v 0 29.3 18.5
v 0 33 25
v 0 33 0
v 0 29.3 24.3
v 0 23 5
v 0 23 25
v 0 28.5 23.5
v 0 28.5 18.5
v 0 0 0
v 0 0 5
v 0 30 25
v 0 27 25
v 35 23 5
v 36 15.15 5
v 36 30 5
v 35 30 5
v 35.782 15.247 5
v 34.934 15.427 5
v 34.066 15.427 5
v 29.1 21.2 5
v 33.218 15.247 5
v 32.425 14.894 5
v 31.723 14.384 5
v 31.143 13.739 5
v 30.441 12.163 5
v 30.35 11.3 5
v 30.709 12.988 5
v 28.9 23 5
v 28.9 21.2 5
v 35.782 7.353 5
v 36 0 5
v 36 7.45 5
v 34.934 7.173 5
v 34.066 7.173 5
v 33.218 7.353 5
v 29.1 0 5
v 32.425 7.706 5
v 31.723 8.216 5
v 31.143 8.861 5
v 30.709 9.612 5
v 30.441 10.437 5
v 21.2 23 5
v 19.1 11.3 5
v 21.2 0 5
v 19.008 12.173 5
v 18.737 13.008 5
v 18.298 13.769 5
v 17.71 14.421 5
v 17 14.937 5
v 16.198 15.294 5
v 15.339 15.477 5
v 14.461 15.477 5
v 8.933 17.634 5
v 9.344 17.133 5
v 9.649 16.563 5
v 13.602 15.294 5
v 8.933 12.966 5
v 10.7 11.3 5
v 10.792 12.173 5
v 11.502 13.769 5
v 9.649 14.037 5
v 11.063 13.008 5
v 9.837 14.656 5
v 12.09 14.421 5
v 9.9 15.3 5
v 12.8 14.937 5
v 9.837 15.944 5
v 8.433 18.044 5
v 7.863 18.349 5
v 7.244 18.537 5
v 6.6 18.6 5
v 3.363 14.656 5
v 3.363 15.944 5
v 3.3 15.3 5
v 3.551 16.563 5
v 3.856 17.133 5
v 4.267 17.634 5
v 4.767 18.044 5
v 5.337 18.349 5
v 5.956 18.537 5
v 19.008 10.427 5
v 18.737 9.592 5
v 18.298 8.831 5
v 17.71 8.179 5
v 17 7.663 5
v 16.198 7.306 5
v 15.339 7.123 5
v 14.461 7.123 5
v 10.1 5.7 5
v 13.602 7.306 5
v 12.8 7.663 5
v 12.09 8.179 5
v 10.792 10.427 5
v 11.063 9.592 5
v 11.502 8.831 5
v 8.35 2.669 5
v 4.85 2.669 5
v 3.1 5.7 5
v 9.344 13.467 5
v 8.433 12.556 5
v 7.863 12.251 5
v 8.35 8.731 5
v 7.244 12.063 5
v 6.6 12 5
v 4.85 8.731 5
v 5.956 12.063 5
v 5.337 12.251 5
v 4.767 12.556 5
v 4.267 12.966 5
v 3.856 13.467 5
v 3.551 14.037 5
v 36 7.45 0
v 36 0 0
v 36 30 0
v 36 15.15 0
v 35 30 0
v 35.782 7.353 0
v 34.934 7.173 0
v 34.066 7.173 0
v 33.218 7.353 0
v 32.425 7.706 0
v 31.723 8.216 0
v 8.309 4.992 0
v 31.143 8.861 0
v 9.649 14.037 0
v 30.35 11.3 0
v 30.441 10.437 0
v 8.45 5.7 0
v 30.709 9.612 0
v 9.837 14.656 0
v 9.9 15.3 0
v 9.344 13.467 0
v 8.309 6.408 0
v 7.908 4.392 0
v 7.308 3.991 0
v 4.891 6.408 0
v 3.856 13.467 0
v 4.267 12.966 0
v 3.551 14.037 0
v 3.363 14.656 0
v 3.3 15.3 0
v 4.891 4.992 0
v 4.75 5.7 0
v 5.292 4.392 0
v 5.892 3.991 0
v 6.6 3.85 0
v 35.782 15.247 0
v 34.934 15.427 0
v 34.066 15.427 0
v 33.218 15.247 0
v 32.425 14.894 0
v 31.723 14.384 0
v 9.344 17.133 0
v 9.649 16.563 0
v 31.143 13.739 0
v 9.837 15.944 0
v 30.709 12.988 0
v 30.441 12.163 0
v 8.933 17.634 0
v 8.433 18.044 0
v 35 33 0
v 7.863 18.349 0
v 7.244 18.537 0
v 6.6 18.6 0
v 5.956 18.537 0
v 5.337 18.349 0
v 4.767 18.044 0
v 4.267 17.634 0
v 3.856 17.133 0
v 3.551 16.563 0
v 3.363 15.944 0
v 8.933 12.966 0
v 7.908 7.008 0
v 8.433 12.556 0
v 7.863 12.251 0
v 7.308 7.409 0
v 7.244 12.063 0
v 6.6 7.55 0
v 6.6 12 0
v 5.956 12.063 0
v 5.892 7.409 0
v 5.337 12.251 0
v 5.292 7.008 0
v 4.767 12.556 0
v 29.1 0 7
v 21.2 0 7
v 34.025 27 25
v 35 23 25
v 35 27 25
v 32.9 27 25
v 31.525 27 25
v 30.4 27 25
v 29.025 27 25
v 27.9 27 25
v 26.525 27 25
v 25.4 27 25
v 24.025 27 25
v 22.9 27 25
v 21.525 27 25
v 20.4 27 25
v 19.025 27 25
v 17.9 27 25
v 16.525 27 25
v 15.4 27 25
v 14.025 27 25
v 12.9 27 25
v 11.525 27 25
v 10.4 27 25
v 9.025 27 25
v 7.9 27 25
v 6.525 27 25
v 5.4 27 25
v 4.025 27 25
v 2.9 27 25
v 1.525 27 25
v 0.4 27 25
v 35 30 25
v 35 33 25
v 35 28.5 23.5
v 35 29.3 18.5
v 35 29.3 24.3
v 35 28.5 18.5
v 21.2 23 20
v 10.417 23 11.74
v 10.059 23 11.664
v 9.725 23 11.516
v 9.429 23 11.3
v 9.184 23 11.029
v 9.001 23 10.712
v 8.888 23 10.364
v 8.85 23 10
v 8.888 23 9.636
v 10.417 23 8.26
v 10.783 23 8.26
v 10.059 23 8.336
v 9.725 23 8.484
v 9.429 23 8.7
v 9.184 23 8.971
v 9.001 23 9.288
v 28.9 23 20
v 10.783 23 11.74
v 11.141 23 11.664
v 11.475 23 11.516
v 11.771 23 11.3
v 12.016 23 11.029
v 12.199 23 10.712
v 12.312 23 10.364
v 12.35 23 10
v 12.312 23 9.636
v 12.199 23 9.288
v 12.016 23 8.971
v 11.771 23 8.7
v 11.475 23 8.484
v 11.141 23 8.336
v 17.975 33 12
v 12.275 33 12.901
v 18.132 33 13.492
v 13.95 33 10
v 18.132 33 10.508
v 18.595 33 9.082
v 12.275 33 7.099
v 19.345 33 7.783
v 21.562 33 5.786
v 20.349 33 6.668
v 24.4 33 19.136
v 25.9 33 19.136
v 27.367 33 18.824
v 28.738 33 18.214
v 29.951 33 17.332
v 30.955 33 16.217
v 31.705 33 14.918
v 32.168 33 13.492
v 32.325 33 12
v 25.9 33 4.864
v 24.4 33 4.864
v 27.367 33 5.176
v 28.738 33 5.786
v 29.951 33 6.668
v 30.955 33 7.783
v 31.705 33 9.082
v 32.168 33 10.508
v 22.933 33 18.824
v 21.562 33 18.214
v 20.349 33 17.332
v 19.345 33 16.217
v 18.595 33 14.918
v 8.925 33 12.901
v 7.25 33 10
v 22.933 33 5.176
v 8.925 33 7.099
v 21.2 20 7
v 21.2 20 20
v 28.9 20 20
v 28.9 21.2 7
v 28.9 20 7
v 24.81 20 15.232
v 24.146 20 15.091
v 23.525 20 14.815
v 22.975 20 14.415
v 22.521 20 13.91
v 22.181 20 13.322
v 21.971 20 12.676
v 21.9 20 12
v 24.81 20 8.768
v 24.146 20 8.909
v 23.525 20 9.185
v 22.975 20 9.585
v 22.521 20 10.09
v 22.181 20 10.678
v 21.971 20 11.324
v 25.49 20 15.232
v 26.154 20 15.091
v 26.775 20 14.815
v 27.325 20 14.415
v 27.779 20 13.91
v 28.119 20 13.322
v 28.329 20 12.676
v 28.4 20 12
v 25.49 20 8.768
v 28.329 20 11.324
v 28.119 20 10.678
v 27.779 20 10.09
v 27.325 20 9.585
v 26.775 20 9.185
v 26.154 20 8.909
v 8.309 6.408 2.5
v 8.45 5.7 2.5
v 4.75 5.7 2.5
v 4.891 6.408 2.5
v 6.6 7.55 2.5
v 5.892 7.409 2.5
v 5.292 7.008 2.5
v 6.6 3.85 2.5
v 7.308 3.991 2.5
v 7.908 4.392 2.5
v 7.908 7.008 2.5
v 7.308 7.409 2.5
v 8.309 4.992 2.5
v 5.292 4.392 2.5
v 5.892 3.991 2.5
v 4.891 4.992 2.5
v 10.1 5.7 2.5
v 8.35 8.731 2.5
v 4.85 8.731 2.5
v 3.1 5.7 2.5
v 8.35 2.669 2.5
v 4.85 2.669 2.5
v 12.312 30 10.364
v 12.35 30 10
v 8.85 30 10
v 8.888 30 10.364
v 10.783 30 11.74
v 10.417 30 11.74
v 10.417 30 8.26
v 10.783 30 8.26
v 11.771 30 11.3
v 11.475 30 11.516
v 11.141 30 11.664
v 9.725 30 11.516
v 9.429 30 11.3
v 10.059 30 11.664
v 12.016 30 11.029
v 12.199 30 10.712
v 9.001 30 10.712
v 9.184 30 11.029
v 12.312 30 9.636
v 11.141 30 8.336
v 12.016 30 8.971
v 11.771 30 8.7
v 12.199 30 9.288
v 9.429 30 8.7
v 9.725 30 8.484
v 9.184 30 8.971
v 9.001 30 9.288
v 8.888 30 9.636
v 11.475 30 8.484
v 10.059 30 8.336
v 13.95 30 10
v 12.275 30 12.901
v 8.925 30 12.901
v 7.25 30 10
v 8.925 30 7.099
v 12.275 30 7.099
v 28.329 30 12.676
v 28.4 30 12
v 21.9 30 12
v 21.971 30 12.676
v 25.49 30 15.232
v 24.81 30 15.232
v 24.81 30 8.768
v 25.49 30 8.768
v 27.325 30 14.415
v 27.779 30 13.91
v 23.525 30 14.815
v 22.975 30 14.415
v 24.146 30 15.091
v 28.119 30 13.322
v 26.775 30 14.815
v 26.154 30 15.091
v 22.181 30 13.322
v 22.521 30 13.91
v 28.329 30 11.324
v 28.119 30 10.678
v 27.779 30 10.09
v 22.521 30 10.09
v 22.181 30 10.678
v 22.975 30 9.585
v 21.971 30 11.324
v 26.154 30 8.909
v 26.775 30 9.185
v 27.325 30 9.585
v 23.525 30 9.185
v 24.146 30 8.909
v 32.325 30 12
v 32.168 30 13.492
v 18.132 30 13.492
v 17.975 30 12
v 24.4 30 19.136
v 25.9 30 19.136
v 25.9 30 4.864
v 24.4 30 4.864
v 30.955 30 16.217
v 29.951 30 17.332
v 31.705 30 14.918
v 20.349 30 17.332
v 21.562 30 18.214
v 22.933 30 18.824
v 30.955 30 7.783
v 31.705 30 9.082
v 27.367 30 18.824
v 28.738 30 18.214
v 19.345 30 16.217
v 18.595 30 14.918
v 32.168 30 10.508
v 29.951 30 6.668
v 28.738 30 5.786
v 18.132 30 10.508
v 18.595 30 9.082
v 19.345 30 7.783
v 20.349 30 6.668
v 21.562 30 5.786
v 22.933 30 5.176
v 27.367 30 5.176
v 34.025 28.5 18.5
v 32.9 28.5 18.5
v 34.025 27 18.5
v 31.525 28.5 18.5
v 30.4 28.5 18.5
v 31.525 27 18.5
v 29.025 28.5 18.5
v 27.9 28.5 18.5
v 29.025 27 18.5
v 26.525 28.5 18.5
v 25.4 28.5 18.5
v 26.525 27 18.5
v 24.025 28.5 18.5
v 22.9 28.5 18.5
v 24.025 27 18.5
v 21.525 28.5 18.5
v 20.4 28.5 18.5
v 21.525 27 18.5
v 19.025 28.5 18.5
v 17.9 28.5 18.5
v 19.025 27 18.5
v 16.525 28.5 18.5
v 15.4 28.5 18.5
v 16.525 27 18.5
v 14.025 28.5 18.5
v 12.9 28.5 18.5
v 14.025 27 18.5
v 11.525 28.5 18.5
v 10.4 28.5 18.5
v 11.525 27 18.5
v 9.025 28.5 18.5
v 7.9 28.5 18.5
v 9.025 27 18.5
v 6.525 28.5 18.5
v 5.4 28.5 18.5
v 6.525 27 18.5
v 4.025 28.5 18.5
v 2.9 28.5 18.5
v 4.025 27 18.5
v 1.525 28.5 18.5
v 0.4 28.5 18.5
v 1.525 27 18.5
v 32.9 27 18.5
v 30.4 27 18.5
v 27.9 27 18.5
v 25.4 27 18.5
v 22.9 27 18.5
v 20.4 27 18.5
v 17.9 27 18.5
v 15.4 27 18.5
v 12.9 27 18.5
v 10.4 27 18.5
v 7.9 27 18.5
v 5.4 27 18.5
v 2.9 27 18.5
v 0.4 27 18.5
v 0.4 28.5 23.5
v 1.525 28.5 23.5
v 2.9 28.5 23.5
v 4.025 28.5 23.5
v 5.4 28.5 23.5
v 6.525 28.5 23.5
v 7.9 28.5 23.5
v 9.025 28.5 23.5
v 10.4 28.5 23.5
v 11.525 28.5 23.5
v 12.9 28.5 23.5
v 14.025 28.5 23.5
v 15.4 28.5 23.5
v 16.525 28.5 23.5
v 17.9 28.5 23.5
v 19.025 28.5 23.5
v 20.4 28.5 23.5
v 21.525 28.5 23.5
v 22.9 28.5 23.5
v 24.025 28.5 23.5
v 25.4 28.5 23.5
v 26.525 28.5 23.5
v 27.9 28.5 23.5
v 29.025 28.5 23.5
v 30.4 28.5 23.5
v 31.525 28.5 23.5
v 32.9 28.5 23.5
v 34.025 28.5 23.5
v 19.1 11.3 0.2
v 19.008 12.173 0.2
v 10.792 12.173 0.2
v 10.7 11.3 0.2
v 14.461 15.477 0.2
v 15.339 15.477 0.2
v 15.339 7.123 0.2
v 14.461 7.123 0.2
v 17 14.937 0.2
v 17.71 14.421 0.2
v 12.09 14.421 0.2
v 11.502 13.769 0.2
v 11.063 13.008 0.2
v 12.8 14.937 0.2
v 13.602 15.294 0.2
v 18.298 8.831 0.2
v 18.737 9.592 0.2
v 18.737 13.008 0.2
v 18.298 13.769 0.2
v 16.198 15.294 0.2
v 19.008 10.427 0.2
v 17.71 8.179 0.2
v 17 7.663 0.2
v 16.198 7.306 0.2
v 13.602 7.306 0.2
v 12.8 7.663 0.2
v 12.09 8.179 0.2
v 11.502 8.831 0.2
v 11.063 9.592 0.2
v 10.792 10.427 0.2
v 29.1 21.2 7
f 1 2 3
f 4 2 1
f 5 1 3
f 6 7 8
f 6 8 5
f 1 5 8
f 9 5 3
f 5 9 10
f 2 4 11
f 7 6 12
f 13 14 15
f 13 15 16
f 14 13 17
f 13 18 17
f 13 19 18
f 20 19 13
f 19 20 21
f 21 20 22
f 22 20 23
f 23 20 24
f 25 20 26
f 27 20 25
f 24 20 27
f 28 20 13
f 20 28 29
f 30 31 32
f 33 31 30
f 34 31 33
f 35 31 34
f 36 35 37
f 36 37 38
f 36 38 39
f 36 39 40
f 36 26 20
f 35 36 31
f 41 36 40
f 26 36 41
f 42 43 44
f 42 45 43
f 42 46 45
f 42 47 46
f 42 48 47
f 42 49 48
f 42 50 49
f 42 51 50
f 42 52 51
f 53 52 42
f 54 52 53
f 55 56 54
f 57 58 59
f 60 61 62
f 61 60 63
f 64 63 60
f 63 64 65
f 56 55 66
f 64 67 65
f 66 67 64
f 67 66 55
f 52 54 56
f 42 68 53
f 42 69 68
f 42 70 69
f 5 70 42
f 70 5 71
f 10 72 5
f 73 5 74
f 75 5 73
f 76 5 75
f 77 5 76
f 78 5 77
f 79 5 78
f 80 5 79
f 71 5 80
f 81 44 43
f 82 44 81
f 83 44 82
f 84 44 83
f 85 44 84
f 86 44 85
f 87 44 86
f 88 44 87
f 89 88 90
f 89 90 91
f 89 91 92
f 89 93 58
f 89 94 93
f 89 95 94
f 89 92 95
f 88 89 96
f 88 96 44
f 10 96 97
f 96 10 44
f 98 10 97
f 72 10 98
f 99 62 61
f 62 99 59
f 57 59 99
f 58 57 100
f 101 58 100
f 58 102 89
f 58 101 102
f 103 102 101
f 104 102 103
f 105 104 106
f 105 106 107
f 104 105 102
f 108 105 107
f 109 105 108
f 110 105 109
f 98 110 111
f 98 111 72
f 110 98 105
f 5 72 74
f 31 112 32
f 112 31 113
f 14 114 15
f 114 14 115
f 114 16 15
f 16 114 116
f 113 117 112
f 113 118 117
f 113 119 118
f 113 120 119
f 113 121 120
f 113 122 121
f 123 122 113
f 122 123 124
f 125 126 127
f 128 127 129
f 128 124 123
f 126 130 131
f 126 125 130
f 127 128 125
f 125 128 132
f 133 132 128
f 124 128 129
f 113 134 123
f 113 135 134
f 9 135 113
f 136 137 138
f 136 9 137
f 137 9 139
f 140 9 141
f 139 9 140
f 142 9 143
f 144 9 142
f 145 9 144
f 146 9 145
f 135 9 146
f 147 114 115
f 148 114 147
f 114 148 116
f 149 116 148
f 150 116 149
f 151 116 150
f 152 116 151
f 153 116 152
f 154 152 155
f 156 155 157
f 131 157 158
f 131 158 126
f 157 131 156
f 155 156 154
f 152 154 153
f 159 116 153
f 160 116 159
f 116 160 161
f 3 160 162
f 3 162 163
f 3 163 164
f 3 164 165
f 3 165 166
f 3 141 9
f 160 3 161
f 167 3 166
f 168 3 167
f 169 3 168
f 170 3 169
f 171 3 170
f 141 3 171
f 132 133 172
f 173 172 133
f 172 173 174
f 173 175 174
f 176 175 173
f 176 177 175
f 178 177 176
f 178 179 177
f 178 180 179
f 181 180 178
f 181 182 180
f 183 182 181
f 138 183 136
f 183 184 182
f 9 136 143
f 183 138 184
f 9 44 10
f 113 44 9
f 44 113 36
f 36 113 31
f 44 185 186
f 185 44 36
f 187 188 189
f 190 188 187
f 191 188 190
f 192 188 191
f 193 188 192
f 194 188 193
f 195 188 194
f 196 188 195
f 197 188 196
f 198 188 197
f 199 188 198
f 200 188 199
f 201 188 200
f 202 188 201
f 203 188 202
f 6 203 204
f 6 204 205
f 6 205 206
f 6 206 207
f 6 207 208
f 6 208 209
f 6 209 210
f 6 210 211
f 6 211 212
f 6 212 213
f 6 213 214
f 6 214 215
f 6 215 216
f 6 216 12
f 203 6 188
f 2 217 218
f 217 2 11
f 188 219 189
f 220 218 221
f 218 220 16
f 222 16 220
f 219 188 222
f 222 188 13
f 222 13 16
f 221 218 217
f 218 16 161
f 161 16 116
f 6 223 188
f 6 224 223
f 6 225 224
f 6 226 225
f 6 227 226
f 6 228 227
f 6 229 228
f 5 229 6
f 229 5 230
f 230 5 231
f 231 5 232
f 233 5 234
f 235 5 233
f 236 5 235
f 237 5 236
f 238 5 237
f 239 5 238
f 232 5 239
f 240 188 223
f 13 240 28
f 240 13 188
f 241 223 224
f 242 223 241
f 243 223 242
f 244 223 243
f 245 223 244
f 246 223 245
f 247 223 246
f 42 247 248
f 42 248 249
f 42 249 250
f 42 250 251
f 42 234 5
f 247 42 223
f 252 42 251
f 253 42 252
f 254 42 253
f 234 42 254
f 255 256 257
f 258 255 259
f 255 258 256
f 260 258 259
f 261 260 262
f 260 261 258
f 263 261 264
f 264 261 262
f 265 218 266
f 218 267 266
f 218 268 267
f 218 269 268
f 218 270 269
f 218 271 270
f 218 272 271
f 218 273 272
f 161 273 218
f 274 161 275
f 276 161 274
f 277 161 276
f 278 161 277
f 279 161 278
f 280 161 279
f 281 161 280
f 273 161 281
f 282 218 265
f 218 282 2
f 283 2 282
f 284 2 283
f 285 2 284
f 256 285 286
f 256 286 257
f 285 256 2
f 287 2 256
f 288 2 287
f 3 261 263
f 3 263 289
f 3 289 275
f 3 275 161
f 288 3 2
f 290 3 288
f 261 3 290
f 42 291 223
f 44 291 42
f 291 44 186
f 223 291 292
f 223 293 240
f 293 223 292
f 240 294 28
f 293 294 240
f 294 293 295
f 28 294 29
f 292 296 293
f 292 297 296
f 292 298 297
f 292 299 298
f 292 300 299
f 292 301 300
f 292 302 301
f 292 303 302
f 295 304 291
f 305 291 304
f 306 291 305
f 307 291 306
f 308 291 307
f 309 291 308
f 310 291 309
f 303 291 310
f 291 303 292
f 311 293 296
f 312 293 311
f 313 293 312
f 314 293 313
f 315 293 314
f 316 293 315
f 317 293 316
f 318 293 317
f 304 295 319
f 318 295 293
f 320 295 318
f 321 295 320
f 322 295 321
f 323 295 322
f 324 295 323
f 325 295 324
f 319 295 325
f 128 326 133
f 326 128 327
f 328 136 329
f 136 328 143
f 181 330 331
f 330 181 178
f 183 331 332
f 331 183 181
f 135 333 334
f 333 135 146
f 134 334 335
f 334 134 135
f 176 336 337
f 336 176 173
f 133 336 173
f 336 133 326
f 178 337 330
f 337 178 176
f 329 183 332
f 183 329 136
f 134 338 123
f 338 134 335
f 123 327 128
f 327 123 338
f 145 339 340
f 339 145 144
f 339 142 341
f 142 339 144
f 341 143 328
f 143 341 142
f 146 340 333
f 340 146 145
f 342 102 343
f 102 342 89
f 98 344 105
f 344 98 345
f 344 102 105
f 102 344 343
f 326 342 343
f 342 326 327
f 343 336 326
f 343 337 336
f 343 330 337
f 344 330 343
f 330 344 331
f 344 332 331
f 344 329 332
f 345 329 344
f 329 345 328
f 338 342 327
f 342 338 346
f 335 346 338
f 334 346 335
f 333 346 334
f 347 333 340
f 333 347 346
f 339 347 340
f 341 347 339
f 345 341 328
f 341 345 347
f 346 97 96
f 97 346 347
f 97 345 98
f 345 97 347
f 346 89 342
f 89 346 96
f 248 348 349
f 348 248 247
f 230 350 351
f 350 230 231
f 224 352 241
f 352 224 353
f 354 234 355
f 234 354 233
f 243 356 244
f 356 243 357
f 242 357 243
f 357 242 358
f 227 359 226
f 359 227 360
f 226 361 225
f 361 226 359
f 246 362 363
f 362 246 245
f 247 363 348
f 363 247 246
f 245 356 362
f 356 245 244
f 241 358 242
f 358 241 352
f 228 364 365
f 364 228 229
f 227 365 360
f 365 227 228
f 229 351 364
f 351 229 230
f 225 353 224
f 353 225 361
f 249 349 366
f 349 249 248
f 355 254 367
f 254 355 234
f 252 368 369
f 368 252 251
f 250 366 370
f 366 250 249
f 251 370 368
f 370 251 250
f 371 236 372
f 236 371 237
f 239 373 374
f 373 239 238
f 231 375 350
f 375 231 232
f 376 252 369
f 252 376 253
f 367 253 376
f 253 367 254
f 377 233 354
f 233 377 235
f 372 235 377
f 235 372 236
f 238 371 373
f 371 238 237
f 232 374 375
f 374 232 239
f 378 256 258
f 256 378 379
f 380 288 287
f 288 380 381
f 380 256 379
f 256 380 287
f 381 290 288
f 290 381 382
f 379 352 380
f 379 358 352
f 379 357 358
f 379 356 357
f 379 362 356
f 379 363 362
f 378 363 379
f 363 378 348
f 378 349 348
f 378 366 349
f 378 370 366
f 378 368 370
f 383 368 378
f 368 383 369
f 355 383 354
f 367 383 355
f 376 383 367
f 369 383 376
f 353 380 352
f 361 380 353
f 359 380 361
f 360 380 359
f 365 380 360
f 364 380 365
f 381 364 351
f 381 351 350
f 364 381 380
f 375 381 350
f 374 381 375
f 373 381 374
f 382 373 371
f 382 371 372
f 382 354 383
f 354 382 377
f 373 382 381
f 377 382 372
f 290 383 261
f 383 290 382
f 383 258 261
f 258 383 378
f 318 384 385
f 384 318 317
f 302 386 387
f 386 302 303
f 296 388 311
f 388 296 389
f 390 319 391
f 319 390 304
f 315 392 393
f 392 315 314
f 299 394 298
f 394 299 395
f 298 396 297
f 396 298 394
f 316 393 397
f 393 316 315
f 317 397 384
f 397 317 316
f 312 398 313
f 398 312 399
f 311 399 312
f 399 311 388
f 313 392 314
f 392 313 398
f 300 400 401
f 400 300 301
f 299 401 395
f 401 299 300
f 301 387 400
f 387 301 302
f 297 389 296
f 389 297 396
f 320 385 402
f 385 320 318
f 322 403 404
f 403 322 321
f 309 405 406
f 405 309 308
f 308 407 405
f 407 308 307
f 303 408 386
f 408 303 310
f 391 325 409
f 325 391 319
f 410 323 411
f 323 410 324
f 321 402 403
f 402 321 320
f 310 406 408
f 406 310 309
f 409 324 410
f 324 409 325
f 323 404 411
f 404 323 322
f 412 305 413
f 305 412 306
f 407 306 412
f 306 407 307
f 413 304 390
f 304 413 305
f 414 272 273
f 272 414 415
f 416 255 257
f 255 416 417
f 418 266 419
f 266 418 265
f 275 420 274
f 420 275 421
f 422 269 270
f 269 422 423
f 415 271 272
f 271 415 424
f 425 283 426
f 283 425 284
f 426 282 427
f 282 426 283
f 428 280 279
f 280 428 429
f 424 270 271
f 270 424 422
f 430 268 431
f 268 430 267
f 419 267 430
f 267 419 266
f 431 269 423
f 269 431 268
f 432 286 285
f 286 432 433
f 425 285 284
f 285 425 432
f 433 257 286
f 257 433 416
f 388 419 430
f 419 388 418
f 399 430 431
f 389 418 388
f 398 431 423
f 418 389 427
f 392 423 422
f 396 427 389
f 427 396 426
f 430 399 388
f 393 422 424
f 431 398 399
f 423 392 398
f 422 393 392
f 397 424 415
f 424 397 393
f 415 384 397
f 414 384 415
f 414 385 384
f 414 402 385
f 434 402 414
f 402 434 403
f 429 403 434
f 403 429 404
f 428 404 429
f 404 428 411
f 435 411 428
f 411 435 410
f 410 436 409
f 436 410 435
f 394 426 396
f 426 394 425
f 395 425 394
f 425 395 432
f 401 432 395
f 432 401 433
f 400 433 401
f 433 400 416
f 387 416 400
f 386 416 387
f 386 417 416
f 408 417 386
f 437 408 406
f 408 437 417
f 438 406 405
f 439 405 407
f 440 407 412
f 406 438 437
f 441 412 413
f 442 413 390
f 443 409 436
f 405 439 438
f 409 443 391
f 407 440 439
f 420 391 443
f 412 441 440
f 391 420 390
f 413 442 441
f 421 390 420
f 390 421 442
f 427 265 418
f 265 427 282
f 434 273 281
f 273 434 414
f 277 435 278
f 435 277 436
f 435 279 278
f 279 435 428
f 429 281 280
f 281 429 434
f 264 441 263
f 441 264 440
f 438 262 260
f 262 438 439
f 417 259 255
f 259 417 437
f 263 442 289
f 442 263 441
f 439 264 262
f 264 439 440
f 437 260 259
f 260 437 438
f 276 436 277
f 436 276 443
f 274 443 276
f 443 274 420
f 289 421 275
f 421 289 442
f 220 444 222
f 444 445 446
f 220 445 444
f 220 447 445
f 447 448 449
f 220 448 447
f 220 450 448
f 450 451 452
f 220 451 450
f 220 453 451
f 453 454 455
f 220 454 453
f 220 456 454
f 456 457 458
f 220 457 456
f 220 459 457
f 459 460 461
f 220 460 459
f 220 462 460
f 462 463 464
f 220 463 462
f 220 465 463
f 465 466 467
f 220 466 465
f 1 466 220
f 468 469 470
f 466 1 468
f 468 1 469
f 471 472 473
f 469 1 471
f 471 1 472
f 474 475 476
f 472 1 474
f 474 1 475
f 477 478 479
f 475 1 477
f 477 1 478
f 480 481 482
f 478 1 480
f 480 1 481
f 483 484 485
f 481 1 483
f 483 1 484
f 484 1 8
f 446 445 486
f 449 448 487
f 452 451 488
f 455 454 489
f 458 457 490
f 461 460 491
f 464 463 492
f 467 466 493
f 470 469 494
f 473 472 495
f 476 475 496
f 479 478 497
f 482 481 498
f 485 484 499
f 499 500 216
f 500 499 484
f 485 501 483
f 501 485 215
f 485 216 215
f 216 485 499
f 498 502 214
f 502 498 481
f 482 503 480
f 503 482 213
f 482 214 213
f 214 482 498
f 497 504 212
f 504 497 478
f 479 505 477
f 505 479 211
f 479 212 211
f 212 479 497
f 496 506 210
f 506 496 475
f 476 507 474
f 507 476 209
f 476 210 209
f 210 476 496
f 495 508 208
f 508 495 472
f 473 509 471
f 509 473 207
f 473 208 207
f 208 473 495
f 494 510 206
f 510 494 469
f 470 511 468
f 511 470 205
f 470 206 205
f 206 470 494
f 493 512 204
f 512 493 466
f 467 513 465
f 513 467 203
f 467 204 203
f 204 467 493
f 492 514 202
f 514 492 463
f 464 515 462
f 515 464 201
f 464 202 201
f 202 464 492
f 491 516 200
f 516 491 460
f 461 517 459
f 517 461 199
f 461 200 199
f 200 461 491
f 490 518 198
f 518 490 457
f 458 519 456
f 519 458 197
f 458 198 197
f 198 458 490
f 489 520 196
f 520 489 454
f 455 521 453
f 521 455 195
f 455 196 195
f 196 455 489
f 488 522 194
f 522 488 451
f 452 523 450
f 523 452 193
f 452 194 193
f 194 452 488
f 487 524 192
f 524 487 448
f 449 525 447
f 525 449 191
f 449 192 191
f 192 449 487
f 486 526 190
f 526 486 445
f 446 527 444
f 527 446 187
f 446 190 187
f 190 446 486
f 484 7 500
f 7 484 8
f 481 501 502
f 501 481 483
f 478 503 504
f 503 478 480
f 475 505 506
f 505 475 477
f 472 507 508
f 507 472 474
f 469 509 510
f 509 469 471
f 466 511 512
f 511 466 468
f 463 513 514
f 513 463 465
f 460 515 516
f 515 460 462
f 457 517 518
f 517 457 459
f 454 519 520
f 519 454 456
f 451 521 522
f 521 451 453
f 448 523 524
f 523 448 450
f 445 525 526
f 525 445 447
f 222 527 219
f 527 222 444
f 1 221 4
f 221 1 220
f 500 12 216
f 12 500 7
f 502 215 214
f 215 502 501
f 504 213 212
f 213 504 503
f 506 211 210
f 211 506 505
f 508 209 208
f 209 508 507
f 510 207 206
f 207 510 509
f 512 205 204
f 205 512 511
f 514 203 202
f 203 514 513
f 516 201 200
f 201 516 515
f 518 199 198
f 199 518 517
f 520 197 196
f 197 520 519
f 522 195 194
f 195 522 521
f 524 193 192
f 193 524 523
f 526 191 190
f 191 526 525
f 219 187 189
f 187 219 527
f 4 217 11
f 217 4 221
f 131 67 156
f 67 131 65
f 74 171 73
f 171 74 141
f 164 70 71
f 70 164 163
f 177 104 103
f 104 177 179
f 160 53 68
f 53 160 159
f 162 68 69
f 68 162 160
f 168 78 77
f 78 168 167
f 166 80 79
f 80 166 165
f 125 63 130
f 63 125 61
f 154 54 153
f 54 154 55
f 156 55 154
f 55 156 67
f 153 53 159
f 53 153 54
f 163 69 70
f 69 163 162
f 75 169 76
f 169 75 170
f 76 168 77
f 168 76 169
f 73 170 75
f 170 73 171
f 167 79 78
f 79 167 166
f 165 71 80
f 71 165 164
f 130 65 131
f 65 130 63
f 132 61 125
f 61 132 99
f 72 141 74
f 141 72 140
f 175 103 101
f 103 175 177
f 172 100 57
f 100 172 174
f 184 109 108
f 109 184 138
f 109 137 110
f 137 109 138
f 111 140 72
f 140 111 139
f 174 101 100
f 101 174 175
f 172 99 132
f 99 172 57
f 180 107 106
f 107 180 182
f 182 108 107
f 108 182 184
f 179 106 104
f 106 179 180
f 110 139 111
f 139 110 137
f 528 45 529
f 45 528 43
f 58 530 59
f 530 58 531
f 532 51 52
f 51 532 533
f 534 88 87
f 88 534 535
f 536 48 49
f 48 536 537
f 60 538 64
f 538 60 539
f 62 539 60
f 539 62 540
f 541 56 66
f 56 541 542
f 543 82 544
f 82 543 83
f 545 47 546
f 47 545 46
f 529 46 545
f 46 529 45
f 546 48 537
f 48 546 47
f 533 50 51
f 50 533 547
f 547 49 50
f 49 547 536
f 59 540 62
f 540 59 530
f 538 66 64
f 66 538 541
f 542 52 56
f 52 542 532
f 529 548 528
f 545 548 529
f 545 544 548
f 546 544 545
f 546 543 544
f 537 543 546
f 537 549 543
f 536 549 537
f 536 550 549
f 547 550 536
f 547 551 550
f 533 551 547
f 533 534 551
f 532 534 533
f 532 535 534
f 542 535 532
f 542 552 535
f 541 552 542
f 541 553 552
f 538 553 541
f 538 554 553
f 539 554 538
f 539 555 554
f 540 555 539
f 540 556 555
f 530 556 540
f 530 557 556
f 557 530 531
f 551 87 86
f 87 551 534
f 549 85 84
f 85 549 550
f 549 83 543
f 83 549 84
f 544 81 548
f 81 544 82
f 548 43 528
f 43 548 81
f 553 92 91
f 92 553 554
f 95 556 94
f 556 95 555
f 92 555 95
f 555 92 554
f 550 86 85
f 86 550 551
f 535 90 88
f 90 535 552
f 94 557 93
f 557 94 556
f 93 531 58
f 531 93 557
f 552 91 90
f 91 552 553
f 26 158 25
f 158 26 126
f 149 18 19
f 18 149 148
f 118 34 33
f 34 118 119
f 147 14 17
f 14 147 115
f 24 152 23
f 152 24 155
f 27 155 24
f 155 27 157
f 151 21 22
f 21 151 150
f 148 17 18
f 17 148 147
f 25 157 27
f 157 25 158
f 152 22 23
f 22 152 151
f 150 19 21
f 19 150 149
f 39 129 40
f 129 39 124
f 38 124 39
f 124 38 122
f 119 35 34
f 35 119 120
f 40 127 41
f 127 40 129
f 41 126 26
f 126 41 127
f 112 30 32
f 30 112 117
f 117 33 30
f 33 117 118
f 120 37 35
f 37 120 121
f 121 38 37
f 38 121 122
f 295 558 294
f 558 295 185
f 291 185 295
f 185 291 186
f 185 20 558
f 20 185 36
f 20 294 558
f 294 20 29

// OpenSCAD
// file: src/include/configuration.scad
// Layer high for the printing [mm]
layer_height = 0.20; //Slic3r->Print Settings->Layers and perimeters->Layer height

// Spare for the screws heads [mm]
spare = 0.75;
// M6 screw diameter [mm]
M6_head_diameter = 13.6+spare;
//M6_head_diameter = 10.6+spare;
//M6_head_diameter = 12+spare;

// M6 head high (for hiding it) [mm]
//M6_head_height = 4;
M6_head_height = 3.6;
//M6_head_height = 4.5;

// Screws and rods diameters
M8_smooth_rod_diameter = 8.3;
M8_smooth_rod_diameter_catch = 8.4;
// Prumer 8mm tyce
rod_8mm_d = 8.2; //pro dil z-top
M6_diameter = 6.6;
M6_dia=M6_diameter; //pro dil z-top
M6_diamater_horizontal = 6.5;
M3_diameter = 3.7;
M3_diameter_horizontal = 3.5;

//matice trapézové tyče
TRAP_diameter_externa=22; //průmer vnější 


// Nuts diameters
M3_nut_diameter = 7.0;
M3_nut_diameter_horizontal = 6.7;

// ALU profile parameters
ALU_cut_width = 7.9;
ALU_cut_width_horizontal = 7.7;

// Sirka matky do profilu (pokud neni pouzita, tak 0)
//profile_nut_width = 9.5;
profile_nut_width = 0; //pro z-top

// Motors length/depth (for axes Z and Y)
//SX17-1003LQFE (recommended for the Z axis)
motor_length = 29.5;
//SX17-1003 (recommended for the Z axis)
//motor_length = 34;
//SX17-1005
//motor_length = 40;
//SX17-0905 - this motor is too high - the Z end stop holder has to be adjusted
//motor_length = 48;

// Extrusion width [mm]
extrusion_width = 0.66; //Slic3r->Print Settings->Advanced->Default extrusion width

/// Belt type ******************************************************

// GT2 
/*belt_tooth_distance = 2;
belt_tooth_ratio = 0.5;
belt_tooth_height = 1.4;
belt_thickness = 2.3;
*/

// T2.5
belt_tooth_distance = 2.5;
belt_tooth_ratio = 0.5;


// Tloustka rohovych spojek
// 5 mm => sroub M6x14 s podlozkou
// 3 mm => sroub M6x12 s podlozkou
coupler_thickness = 3;
// main file
include <./src/include/configuration.scad>

difference(){
	union(){
		cube([36,30,5]);
		translate([0,23,0])cube([35,10,25]);
		translate([M6_diameter*2+8,20,0])cube([ALU_cut_width_horizontal,11,20]);
	}
	translate([M6_diameter,M6_diameter+M3_diameter+5,-1])cylinder(r=M6_diameter/2,h=7,$fn=32);
	translate([M6_diameter,M3_diameter+2,-1]){
		cylinder(r=M3_diameter/2,h=7,$fn=16);	
		translate([0,0,3.5])cylinder(r=M3_nut_diameter/2,h=2.6,$fn=6);
	}
	translate([M6_diameter+M8_smooth_rod_diameter,M8_smooth_rod_diameter+3,layer_height])cylinder(h=7,r=M8_smooth_rod_diameter_catch/2,$fn = 30);
	translate([34.5,M8_smooth_rod_diameter+3,-1])cylinder(h=7,r=M8_smooth_rod_diameter/2,$fn = 30);
	
	translate([M6_diameter+4,34,10]) 
	rotate([90,0,0]){
		cylinder(h = 15, r=M3_diameter_horizontal/2, $fn=30);
		cylinder(h = 4, r=M3_nut_diameter_horizontal/2, $fn=6);
	}

	translate([M6_diameter*2+8+ALU_cut_width/2,34,12]) 
	rotate([90,0,0]){
		cylinder(r = M6_diamater_horizontal/2, h = 15, $fn = 30);
		cylinder(r = M6_head_diameter/2, h = 4, $fn = 30);
	}
	
	translate([-1,27,18.5])belt_holder_beltcut();
}

translate([M6_diameter*2+8,0,0])cube([ALU_cut_width,M6_diameter*2+8,7]);

module belt_holder_beltcut(){
 echo(belt_tooth_ratio*belt_tooth_distance);
 position_tweak=-1.1;
 // Belt slit
 //translate([-66,-0.5+10,3]) 
 translate([0,1.5,0])
 cube([67,0.8,15]);
 // Smooth insert cutout
 //translate([-66,-0.5+10,12]) 
 translate([0,1.5,5])
 rotate([45,0,0]) cube([67,15,15]);
 // Individual teeth
 for ( i = [0 : 23] ){
 	translate([0+i*belt_tooth_distance+position_tweak,0,0]) cube([belt_tooth_ratio*belt_tooth_distance,1.7,15]);
 }
}
